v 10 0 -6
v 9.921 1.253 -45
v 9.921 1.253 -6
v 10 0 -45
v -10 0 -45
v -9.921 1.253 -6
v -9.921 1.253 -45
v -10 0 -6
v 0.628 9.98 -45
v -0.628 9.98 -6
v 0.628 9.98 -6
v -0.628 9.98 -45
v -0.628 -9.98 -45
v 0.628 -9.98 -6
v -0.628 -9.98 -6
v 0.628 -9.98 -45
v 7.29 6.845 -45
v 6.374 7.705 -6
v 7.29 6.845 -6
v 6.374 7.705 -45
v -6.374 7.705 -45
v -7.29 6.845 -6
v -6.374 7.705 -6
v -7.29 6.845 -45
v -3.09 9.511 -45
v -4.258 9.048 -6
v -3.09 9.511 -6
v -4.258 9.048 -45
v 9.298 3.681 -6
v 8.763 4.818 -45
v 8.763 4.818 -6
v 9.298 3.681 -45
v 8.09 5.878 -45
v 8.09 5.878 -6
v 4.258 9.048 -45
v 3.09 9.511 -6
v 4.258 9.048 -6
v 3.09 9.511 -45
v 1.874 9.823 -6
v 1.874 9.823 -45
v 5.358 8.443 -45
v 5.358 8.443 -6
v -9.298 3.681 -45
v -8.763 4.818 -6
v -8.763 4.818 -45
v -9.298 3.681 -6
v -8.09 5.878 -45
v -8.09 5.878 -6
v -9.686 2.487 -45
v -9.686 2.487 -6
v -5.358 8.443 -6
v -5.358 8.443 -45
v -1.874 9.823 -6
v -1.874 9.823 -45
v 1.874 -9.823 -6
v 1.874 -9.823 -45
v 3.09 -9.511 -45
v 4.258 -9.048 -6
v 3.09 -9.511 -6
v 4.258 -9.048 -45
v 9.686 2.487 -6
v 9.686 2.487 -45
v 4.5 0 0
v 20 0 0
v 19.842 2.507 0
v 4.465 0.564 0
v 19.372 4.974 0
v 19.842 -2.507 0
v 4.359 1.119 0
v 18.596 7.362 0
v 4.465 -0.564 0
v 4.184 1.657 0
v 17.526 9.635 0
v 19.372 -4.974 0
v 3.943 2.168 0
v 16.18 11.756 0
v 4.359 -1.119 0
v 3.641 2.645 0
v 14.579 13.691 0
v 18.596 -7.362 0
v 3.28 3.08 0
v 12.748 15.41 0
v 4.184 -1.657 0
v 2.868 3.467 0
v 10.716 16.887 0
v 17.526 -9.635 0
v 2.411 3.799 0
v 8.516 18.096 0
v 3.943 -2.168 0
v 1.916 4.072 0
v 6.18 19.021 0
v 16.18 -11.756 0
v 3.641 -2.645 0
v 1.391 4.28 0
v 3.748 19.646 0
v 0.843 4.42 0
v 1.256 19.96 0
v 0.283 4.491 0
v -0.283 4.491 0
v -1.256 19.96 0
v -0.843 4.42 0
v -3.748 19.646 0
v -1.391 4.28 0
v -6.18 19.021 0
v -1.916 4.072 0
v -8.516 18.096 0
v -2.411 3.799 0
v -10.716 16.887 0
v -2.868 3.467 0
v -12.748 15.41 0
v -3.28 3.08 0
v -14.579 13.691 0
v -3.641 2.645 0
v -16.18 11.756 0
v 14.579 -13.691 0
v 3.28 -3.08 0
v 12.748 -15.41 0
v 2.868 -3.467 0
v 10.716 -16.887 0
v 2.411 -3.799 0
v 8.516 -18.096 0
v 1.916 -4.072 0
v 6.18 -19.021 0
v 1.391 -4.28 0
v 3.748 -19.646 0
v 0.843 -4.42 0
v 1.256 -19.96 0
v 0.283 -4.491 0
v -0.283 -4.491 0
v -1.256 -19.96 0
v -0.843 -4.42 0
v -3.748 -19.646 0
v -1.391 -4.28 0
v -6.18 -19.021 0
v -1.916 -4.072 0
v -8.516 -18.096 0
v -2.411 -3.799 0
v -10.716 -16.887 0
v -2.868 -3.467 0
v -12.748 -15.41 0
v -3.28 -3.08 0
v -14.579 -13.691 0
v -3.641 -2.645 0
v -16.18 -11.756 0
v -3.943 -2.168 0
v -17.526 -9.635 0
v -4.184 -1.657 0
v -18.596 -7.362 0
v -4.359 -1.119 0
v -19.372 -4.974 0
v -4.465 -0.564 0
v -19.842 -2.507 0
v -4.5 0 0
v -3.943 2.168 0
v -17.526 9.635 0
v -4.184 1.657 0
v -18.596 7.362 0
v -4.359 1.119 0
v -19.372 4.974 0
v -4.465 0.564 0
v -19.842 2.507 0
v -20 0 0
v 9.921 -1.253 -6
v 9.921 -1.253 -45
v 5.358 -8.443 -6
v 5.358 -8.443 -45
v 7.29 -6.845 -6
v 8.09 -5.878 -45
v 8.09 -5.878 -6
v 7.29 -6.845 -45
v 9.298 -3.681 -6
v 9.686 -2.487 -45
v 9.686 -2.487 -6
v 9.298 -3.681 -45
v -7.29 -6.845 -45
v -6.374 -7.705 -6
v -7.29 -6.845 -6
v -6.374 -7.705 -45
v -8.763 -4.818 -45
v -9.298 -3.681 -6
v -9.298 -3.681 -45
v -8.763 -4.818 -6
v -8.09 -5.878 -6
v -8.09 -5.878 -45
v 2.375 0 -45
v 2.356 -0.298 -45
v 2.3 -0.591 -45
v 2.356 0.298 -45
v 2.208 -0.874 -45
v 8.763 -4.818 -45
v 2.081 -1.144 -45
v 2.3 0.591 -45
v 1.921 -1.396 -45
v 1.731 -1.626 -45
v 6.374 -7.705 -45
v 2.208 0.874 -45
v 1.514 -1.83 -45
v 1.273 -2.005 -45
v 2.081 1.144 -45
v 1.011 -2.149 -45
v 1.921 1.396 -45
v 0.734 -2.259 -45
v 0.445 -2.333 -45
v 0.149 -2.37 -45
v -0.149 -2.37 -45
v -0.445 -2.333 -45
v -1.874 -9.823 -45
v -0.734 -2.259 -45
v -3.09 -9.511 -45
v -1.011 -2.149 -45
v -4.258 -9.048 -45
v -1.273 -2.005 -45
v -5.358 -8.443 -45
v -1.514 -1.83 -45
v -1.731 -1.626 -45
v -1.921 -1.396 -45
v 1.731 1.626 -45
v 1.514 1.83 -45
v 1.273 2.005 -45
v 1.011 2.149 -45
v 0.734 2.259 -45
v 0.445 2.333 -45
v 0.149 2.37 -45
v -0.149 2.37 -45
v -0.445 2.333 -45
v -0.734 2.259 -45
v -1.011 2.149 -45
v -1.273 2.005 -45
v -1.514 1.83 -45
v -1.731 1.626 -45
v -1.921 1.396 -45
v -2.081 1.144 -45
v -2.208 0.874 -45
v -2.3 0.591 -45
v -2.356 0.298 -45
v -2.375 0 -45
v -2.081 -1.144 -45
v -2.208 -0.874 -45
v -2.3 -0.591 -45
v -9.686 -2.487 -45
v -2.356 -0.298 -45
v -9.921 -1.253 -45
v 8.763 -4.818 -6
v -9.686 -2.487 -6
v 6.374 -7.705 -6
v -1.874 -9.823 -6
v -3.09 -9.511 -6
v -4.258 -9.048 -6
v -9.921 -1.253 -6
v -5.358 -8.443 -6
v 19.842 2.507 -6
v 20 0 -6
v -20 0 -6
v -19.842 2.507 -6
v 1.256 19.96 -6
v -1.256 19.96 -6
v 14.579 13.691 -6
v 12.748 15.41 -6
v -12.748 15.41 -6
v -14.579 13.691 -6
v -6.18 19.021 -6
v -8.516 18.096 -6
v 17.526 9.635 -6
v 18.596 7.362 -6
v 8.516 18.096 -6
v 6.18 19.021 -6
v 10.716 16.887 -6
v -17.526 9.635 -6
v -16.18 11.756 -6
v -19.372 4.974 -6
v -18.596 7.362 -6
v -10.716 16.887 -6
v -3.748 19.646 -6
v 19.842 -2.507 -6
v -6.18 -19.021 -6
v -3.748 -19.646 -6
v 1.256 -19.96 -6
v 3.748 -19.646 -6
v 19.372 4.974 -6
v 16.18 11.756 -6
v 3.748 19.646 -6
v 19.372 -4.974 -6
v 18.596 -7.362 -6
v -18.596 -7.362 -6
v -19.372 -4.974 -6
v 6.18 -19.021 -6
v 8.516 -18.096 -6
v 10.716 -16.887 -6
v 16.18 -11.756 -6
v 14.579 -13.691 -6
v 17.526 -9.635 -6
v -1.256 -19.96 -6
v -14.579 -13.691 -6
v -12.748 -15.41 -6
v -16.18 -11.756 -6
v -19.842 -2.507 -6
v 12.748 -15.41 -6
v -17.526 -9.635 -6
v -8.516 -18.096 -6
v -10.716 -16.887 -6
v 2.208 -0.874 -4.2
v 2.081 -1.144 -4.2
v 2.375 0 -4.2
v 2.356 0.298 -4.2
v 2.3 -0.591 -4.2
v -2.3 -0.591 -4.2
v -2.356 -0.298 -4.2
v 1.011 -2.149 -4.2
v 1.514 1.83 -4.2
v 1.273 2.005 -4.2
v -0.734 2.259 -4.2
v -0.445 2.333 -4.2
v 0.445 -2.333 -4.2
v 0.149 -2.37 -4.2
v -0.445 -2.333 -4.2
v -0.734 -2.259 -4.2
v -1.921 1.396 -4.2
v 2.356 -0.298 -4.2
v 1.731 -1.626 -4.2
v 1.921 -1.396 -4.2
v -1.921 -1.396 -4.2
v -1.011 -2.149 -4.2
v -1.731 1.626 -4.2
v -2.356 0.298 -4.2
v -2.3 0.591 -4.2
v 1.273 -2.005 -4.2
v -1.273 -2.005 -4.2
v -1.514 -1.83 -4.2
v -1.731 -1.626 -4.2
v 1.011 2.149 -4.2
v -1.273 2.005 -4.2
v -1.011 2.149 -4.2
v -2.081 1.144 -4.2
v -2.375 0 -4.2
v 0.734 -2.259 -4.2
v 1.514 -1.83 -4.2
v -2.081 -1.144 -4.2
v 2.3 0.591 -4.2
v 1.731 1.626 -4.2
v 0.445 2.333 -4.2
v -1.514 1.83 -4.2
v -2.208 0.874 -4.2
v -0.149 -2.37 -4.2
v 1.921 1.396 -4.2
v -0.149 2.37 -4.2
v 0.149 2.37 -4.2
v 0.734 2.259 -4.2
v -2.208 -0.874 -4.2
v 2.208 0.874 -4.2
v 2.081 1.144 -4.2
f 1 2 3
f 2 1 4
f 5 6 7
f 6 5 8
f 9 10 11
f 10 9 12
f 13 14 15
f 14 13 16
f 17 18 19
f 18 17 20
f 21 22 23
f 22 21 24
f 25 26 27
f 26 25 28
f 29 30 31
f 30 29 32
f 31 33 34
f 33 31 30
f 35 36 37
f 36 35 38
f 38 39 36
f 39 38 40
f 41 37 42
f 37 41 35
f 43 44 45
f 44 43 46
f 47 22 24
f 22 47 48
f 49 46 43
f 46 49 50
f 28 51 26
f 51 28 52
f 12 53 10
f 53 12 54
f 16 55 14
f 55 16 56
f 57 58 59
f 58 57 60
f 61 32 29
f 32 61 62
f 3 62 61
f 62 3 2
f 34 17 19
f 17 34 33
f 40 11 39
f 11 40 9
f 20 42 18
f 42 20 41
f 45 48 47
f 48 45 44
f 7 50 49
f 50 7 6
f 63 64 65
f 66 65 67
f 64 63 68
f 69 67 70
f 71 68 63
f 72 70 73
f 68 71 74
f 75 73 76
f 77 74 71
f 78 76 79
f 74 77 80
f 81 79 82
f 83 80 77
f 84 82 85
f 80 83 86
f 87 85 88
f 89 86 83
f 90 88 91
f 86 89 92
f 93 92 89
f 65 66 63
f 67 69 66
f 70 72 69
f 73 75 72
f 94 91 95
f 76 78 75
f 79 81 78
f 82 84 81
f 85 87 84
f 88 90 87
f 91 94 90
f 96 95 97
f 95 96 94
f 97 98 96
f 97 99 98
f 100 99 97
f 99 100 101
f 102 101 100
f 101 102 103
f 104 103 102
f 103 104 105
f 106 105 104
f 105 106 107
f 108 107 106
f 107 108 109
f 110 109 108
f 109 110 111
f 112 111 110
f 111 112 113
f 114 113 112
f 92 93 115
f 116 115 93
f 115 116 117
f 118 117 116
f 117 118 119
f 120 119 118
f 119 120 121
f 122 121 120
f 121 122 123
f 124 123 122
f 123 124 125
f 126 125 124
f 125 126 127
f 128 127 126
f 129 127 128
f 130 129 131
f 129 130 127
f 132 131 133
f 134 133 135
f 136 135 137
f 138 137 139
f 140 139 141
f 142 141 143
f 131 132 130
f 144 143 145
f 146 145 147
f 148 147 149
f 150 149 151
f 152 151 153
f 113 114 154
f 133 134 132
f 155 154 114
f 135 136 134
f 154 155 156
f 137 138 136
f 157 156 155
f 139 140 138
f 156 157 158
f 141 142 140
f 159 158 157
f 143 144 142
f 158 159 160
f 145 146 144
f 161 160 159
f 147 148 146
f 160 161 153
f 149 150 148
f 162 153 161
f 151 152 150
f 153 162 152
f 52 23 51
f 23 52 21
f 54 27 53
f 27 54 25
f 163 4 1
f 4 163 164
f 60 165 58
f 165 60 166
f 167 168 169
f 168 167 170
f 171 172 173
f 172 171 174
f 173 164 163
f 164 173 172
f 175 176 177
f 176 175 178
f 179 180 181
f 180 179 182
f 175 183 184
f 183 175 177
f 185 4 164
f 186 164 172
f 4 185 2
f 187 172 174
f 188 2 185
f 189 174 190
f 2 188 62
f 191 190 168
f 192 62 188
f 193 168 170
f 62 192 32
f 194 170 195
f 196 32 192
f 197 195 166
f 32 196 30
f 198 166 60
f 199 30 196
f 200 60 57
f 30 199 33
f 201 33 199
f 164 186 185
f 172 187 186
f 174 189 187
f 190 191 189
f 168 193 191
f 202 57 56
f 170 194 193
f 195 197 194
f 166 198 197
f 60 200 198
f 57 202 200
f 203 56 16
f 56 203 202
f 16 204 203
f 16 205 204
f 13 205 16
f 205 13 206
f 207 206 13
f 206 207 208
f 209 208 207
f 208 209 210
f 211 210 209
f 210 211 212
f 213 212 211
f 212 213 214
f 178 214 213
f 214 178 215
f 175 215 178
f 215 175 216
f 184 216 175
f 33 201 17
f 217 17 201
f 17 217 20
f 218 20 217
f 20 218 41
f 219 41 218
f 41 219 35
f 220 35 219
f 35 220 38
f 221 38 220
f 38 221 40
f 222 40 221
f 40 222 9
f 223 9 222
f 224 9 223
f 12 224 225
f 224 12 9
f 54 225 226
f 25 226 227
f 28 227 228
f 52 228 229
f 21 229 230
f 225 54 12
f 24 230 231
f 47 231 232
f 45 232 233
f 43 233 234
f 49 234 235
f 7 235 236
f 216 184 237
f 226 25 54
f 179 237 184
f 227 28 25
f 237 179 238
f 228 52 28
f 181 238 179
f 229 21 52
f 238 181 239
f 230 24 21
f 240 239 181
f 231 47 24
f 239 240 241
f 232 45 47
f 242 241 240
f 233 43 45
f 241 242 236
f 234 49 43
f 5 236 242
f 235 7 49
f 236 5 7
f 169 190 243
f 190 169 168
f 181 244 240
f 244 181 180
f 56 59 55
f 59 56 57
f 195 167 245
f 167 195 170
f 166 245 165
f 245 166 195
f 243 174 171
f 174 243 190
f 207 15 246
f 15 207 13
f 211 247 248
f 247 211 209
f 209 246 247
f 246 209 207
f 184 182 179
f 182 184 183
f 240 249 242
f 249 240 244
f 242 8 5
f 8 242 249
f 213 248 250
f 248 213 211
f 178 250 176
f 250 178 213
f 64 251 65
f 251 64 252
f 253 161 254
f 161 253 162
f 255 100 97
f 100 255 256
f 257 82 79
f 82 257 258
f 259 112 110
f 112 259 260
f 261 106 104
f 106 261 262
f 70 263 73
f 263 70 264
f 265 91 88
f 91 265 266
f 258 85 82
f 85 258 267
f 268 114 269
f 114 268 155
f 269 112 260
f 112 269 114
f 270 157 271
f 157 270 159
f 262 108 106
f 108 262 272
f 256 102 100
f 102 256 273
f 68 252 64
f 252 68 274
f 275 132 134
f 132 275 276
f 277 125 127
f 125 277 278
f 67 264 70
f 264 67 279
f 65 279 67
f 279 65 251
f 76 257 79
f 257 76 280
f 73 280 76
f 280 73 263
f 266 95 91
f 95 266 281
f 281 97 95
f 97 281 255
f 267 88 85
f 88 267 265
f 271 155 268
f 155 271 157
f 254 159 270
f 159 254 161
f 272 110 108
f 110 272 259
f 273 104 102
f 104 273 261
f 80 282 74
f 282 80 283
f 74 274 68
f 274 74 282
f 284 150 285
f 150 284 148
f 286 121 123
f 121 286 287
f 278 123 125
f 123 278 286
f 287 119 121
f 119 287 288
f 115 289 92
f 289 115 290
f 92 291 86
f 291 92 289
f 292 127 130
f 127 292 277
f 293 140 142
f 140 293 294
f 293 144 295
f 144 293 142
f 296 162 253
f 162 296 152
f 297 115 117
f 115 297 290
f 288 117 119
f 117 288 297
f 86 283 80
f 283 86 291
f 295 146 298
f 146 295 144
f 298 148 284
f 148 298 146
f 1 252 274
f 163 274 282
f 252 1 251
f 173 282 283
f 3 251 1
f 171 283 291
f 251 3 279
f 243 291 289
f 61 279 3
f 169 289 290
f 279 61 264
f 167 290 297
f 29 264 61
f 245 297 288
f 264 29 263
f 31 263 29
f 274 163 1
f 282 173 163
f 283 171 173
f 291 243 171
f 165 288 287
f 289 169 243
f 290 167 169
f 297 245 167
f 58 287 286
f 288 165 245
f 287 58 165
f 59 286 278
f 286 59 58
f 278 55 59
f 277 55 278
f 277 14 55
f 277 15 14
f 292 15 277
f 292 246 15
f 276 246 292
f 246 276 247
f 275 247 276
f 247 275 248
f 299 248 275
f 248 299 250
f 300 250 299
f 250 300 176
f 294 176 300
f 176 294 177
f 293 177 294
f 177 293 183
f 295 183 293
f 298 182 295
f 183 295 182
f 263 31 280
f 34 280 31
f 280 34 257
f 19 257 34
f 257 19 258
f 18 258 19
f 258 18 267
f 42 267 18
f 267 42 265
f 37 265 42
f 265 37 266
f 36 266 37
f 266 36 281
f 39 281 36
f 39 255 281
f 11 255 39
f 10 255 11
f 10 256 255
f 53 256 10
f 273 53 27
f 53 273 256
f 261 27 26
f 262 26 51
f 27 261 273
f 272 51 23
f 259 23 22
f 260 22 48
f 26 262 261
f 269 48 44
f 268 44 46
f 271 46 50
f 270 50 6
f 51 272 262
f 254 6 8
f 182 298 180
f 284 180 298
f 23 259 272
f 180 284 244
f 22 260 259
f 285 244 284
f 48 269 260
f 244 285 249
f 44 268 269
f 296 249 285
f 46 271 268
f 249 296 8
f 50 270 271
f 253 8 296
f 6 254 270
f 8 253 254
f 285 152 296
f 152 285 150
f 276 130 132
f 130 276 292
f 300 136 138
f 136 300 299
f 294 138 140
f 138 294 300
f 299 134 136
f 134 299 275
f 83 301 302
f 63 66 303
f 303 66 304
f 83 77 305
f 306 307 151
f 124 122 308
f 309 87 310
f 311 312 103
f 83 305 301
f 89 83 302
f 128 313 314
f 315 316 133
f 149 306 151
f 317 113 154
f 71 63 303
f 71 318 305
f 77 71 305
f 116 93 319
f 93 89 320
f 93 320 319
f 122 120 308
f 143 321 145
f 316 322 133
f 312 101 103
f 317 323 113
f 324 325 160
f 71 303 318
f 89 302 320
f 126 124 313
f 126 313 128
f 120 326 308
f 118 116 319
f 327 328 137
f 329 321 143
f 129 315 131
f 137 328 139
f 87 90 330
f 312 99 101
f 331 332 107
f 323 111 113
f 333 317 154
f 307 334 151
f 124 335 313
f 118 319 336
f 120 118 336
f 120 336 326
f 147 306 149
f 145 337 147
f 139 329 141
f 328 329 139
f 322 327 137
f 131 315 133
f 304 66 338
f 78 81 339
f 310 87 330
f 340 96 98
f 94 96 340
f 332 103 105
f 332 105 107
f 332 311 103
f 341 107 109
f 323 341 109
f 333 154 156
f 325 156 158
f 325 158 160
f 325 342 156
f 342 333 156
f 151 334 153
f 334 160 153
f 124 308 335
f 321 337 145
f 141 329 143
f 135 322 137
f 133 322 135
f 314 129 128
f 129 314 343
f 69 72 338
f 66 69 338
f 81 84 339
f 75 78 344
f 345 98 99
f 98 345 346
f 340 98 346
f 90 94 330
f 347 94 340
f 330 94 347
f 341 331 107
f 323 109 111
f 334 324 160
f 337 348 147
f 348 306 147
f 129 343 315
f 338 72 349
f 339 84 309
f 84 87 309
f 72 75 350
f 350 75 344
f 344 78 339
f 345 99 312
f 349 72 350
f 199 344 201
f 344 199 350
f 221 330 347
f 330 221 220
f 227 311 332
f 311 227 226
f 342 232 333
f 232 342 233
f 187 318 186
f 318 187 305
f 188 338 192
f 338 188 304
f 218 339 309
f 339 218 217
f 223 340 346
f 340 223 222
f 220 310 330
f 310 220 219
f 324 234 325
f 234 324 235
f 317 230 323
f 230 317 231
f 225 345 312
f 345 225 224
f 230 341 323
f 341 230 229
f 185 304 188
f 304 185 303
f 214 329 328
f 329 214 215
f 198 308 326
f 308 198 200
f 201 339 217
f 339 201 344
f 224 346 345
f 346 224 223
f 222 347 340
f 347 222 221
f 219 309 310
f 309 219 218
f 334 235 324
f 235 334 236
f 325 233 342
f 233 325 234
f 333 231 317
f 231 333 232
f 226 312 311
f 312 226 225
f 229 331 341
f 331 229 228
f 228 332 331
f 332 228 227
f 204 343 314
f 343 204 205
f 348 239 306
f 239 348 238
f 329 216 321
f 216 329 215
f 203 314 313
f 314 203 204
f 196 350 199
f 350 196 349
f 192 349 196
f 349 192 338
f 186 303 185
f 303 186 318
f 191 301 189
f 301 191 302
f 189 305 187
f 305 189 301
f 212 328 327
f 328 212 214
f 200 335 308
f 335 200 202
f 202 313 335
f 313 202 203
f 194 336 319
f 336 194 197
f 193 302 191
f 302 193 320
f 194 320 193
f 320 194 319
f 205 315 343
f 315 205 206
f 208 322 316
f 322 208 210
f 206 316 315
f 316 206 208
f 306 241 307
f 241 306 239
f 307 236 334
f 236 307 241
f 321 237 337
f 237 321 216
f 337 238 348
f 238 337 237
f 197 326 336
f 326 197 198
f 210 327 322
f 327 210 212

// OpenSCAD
$fn = 50;


difference() {
	union() {
		translate(v = [0, 0, -45.0000000000]) {
			cylinder(h = 45, r = 10.0000000000);
		}
		translate(v = [0, 0, -6.0000000000]) {
			cylinder(h = 6, r = 20.0000000000);
		}
	}
	union() {
		translate(v = [0, 0, 0]) {
			rotate(a = [0, 0, 0]) {
				difference() {
					union() {
						#translate(v = [0, 0, -45.0000000000]) {
							cylinder(h = 45, r = 2.2500000000);
						}
						#translate(v = [0, 0, -4.2000000000]) {
							cylinder(h = 4.2000000000, r1 = 2.3750000000, r2 = 4.5000000000);
						}
						#translate(v = [0, 0, -45.0000000000]) {
							cylinder(h = 45, r = 2.3750000000);
						}
						#translate(v = [0, 0, -45.0000000000]) {
							cylinder(h = 45, r = 2.2500000000);
						}
					}
					union();
				}
			}
		}
	}
}
